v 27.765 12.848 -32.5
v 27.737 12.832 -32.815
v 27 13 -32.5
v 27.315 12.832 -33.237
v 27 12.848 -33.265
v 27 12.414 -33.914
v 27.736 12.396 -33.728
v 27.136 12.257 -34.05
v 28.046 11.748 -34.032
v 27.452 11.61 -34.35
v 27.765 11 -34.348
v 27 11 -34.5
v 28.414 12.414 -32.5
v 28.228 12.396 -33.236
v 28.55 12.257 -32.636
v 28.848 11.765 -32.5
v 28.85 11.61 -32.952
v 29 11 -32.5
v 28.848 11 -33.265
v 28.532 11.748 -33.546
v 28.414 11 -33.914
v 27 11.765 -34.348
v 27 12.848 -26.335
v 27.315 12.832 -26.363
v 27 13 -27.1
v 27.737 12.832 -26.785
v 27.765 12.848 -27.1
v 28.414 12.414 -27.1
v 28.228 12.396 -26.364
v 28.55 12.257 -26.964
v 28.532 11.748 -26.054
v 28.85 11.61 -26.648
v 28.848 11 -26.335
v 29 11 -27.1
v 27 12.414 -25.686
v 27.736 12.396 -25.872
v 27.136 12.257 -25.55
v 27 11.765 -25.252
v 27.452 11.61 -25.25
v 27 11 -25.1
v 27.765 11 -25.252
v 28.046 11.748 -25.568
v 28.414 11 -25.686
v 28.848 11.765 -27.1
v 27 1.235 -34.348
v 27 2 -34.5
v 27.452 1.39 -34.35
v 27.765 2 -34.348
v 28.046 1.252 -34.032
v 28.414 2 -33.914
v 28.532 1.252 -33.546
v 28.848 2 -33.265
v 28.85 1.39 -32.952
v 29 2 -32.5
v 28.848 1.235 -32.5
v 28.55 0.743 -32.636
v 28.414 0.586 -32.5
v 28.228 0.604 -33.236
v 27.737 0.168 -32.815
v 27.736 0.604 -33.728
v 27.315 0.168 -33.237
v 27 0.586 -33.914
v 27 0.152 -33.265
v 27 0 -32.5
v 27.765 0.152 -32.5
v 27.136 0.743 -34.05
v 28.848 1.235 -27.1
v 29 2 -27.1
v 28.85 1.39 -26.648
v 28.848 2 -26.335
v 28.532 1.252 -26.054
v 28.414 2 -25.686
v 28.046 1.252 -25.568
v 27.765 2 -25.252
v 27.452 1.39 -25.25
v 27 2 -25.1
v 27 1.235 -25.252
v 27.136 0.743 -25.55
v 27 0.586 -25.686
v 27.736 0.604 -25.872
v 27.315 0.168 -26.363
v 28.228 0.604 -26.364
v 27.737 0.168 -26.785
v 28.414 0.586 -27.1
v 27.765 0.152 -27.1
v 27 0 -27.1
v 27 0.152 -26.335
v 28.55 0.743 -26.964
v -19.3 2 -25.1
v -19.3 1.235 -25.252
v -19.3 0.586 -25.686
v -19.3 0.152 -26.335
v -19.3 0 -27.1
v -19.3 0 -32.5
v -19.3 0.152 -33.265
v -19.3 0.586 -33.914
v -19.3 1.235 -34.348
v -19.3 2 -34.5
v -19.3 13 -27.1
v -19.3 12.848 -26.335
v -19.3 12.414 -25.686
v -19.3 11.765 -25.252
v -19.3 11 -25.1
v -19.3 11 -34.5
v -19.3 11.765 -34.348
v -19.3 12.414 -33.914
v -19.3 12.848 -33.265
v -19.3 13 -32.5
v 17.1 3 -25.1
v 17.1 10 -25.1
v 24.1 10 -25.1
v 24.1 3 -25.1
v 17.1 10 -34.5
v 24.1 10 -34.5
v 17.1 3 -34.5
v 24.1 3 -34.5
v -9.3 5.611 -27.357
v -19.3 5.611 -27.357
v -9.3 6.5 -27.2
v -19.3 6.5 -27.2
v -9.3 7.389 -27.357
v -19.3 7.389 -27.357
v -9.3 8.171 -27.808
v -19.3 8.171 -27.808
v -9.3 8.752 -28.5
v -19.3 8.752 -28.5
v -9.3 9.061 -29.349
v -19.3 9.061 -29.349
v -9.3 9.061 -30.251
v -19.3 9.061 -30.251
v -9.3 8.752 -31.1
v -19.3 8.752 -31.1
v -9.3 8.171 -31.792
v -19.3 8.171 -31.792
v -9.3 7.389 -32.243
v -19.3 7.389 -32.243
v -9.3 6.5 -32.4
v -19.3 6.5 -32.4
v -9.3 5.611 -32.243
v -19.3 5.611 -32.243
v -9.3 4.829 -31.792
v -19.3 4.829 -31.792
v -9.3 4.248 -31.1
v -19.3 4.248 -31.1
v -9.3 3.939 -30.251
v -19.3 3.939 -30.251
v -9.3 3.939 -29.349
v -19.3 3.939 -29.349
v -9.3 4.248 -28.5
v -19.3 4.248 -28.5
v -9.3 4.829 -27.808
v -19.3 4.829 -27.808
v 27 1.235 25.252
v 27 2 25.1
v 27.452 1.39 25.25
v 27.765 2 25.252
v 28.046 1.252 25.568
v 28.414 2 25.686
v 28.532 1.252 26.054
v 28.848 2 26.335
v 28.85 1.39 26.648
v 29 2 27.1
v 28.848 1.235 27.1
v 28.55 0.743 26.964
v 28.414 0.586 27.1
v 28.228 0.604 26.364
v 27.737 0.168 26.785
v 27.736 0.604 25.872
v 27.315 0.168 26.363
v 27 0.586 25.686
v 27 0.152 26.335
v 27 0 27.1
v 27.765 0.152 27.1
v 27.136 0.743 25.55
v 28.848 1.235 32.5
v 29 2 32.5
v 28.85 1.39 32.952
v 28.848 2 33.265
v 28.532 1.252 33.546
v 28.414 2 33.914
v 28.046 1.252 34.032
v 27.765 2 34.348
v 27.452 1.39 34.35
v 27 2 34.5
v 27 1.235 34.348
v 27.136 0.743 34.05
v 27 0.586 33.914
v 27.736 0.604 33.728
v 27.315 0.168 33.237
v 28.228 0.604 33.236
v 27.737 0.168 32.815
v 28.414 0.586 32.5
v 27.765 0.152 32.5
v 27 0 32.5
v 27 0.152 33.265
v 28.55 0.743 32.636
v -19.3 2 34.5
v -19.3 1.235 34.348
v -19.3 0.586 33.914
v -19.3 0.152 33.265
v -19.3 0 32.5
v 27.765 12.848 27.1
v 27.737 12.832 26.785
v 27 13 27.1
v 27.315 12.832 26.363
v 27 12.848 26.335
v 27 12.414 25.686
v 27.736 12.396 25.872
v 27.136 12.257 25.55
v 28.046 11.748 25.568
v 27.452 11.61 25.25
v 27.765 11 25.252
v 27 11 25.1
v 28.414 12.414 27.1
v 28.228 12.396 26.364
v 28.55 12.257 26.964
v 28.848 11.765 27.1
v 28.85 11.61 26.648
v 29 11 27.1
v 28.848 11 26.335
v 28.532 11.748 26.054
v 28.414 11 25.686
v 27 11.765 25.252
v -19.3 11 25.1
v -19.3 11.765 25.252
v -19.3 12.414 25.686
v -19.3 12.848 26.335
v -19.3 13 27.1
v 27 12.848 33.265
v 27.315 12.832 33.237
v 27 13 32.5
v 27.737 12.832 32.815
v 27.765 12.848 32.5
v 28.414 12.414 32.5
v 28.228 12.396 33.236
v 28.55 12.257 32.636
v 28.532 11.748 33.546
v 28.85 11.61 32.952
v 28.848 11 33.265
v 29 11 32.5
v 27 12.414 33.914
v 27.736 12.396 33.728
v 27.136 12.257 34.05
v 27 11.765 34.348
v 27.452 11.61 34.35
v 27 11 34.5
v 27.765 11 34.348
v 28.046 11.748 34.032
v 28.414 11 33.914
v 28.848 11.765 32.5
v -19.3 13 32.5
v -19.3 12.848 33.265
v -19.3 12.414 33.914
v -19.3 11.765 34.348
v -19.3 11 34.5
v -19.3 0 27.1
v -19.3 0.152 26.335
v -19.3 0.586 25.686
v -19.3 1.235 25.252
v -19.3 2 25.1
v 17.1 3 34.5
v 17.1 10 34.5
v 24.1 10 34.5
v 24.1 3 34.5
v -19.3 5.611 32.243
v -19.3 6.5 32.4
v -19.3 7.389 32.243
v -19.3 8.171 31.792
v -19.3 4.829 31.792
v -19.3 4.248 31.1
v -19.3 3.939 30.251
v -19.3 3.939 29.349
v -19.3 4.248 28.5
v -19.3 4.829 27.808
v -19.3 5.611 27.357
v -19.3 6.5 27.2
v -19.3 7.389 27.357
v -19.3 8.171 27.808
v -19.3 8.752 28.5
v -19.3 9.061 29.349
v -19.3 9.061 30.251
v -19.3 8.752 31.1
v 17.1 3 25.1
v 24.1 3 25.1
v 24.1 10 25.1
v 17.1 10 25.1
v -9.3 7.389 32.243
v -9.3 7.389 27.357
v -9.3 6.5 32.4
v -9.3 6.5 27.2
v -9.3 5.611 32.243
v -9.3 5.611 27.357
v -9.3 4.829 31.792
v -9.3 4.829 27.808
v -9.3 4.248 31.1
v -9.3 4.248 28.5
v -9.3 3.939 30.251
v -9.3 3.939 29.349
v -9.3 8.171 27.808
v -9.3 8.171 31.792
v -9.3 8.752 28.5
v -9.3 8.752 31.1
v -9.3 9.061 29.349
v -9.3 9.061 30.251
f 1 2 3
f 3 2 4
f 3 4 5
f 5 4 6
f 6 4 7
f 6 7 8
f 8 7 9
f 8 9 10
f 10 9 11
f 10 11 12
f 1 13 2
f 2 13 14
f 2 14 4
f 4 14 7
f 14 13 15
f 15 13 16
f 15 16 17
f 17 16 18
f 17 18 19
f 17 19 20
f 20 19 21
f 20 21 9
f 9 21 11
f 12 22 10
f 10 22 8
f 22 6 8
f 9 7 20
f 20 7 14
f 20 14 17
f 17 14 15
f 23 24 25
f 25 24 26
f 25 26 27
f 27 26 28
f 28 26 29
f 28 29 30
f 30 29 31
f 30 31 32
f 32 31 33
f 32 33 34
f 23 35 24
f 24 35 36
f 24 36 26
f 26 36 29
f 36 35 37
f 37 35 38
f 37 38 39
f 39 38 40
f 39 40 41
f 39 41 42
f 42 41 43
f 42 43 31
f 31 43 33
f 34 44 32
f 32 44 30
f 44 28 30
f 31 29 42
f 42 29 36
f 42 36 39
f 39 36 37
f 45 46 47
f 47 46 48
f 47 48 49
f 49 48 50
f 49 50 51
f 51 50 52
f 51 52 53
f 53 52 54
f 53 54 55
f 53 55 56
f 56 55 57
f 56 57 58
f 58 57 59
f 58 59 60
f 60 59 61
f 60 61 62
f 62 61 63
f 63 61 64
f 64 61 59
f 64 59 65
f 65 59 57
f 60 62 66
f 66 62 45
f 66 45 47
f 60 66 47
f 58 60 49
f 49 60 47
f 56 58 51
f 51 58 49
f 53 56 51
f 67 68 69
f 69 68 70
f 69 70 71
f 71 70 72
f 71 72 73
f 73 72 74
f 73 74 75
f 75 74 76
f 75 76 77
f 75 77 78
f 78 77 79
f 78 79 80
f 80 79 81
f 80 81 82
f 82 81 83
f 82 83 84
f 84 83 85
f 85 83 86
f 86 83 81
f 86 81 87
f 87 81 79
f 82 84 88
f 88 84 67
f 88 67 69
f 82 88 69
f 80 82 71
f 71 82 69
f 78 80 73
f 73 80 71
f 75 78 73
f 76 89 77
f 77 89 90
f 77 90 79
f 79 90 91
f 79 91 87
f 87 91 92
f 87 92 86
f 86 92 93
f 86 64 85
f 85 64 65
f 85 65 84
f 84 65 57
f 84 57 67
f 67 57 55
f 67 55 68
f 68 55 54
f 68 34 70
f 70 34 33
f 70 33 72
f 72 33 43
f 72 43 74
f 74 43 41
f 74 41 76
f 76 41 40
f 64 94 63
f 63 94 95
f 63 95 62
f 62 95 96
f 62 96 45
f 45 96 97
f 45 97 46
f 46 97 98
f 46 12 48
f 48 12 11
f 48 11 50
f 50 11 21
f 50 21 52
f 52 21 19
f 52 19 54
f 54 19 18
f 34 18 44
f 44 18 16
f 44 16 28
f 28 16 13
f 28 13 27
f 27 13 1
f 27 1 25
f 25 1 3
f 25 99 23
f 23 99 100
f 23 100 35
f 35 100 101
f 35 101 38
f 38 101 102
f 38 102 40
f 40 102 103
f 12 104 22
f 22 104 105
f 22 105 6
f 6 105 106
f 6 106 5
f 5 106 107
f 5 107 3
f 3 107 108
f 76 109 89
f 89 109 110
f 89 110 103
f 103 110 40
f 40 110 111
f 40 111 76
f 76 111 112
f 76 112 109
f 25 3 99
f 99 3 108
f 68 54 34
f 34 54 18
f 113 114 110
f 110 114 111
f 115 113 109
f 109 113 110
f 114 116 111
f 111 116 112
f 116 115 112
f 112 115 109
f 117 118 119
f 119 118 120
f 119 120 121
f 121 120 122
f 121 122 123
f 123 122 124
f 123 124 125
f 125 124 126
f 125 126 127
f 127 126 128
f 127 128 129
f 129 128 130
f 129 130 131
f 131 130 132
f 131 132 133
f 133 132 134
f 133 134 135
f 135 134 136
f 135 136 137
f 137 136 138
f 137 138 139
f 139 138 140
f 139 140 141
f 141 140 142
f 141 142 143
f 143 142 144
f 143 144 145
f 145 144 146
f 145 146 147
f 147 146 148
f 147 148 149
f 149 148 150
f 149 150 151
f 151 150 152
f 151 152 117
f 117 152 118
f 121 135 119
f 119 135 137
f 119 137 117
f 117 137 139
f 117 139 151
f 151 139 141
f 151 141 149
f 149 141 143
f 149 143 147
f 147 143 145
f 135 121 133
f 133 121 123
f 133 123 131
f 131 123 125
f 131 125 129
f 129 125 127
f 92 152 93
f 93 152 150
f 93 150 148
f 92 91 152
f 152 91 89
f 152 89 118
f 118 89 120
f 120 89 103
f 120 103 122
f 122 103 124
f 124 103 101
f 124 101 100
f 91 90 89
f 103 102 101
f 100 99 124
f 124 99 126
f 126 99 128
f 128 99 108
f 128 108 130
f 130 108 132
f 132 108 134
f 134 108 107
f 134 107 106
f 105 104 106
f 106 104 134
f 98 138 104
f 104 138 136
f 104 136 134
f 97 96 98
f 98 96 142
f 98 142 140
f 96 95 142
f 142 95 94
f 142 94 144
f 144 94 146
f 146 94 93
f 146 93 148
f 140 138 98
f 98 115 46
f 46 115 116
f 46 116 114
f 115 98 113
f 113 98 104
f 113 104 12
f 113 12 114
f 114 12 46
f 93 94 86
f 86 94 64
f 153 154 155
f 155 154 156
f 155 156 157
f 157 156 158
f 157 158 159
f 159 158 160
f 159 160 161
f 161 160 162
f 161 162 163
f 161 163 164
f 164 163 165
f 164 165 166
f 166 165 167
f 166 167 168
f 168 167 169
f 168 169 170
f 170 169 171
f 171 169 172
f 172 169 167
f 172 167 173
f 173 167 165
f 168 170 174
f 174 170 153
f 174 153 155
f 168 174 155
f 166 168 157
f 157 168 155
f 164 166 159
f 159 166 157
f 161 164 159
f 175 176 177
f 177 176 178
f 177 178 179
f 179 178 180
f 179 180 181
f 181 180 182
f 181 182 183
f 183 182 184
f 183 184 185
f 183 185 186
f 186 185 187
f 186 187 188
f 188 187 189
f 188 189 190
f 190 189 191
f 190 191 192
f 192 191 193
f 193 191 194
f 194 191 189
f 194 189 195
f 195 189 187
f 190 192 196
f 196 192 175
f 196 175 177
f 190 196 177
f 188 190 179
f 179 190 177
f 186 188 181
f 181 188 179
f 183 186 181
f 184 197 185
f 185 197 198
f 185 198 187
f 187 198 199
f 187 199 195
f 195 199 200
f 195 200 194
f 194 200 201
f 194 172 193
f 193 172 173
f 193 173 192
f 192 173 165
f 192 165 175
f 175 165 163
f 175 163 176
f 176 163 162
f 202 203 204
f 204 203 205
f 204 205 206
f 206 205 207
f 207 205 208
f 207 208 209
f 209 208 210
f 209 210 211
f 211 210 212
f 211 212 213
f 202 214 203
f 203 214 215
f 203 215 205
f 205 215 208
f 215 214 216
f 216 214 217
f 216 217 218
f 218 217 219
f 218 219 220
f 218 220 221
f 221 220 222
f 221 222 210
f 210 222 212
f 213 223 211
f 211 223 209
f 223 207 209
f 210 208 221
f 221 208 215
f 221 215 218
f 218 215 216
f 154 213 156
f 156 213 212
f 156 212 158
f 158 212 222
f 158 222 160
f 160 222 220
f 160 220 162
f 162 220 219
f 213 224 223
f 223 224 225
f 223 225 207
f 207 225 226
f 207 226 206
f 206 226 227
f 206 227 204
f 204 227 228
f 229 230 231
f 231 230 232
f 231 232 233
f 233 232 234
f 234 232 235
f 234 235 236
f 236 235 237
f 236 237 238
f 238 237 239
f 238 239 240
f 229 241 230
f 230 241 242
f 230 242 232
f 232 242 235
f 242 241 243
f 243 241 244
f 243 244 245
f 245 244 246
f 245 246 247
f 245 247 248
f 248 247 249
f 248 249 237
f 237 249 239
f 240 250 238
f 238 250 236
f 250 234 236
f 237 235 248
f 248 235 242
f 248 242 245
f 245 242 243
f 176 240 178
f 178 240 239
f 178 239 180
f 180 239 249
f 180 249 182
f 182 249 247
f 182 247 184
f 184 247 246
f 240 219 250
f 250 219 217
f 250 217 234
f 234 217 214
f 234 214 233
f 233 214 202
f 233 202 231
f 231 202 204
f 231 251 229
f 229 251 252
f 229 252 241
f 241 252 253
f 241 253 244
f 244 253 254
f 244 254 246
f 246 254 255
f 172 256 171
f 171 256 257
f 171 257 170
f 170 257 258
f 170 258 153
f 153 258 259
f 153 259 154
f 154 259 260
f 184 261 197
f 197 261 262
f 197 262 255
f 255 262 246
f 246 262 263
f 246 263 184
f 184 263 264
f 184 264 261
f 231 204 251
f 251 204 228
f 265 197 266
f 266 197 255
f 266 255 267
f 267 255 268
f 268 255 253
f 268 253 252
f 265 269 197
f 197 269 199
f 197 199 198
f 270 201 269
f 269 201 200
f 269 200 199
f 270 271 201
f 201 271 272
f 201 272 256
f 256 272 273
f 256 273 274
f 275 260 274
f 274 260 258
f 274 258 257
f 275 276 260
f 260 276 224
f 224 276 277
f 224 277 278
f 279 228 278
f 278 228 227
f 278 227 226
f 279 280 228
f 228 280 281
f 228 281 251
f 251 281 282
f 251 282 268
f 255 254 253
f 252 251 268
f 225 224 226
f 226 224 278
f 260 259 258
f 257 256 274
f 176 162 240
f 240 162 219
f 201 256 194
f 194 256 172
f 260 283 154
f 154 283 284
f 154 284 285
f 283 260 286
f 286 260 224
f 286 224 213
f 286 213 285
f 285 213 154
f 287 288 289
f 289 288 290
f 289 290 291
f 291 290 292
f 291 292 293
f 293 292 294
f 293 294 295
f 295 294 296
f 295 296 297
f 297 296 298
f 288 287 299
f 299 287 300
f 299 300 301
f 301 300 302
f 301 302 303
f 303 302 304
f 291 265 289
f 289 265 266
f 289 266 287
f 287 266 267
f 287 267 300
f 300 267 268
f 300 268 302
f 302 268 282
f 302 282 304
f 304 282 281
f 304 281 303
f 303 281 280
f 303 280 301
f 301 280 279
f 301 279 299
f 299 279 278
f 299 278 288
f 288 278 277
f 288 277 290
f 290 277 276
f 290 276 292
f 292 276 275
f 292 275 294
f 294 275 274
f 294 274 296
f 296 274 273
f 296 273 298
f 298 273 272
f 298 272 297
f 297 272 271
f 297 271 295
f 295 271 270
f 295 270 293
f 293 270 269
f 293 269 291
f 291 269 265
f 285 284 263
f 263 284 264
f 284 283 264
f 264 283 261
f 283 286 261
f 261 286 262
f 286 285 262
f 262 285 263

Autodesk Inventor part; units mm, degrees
ref_plane "YZ Plane" through (0, 0, 0) normal (1, 0, 0) x (0, 1, 0)
ref_plane "XZ Plane" through (0, 0, 0) normal (0, 1, 0) x (-1, 0, 0)
ref_plane "XY Plane" through (0, 0, 0) normal (0, 0, 1) x (1, 0, 0)
sketch "Szkic1" plane through (0, 0, 0) normal (0, 1, 0) x (-1, 0, 0)
  line L0 (-19.3, 25.1) -> (19.3, 25.1)
  line L1 (19.3, 25.1) -> (19.3, -25.1)
  line L2 (19.3, -25.1) -> (-19.3, -25.1)
  line L3 (-19.3, -25.1) -> (-19.3, 25.1)
  line L4 (-19.3, 25.1) -> (19.3, -25.1) construction
  line L5 (19.3, 25.1) -> (-19.3, -25.1) construction
  line L6 (-29, 34.5) -> (29, 34.5)
  line L7 (29, 34.5) -> (29, -34.5)
  line L8 (29, -34.5) -> (-29, -34.5)
  line L9 (-29, -34.5) -> (-29, 34.5)
  line L10 (-29, 34.5) -> (29, -34.5) construction
  line L11 (29, 34.5) -> (-29, -34.5) construction
  line L12 (19.3, 25.1) -> (19.3, 34.5)
  line L13 (19.3, -25.1) -> (19.3, -34.5)
  line L14 (-19.3, 25.1) -> (-29, 25.1)
  line L15 (-19.3, -25.1) -> (-29, -25.1)
  point P0 (0, 0)
  dimension "d0" = 38.6
  dimension "d1" = 50.2
  dimension "d2" = 58
  dimension "d3" = 69
extrude "Wyciągnięcie proste1" add sketch "Szkic1" along normal blind 13 contours L14 L9 L6 L12 L0 | L2 L13 L8 L9 L15
sketch "Szkic2" plane through (-19.3, 0, 25.1) normal (-1, 0, 0) x (0, 0, 1)
  line L0 (9.4, 0) -> (-59.6, 0) projected
  line L1 (9.4, 0) -> (-59.6, 0)
  line L2 (-25.1, 0) -> (-25.1, 13)
  line L3 (-50.2, 13) -> (0, 13) projected
  line L4 (0, 0) -> (0, 13) projected
  line L5 (9.4, 0) -> (0, 0)
  line L6 (4.7, 0) -> (4.7, 13)
  line L7 (9.4, 13) -> (-59.6, 13) projected
  circle A0 centre (4.7, 6.5) radius 2.6
  circle A1 centre (-54.9, 6.5) radius 2.6
  dimension "d6" = 5.2
extrude "Wyciągnięcie proste2" cut sketch "Szkic2" against normal blind 10 contours A0 L6 | L6 A0 | A1
sketch "Szkic3" plane through (-19.3, 0, 34.5) normal (0, 0, 1) x (1, 0, 0)
  line L0 (48.3, 0) -> (48.3, 13) projected
  line L1 (48.3, 0) -> (48.3, 13)
  line L2 (48.3, 13) -> (48.3, 6.5)
  line L3 (48.3, 6.5) -> (39.9, 6.5)
  line L4 (48.3, 6.5) -> (56.7, 6.5) construction
  line L5 (43.4, 3) -> (36.4, 3)
  line L6 (36.4, 3) -> (36.4, 10)
  line L7 (36.4, 10) -> (43.4, 10)
  line L8 (43.4, 10) -> (43.4, 3)
  line L9 (43.4, 3) -> (36.4, 10) construction
  line L10 (36.4, 3) -> (43.4, 10) construction
  point P0 (19.3, 0)
  dimension "d10" = 8.4
  dimension "d11" = 180
  dimension "d12" = 7
  dimension "d13" = 7
extrude "Wyciągnięcie proste3" cut sketch "Szkic3" against normal blind 98.25
fillet "Zaokrąglenie2" radius 2 16 edges at (29, 13, 29.8) (29, 0, 29.8) (29, 0, -29.8) (29, 13, -29.8) (4.85, 13, -34.5) (4.85, 13, 34.5) (4.85, 0, 34.5) (4.85, 0, -34.5) (4.85, 13, 25.1) (4.85, 0, 25.1) (4.85, 0, -25.1) (4.85, 13, -25.1) (29, 6.5, 34.5) (29, 6.5, 25.1) (29, 6.5, -25.1) (29, 6.5, -34.5)
properties part number "clamp"
